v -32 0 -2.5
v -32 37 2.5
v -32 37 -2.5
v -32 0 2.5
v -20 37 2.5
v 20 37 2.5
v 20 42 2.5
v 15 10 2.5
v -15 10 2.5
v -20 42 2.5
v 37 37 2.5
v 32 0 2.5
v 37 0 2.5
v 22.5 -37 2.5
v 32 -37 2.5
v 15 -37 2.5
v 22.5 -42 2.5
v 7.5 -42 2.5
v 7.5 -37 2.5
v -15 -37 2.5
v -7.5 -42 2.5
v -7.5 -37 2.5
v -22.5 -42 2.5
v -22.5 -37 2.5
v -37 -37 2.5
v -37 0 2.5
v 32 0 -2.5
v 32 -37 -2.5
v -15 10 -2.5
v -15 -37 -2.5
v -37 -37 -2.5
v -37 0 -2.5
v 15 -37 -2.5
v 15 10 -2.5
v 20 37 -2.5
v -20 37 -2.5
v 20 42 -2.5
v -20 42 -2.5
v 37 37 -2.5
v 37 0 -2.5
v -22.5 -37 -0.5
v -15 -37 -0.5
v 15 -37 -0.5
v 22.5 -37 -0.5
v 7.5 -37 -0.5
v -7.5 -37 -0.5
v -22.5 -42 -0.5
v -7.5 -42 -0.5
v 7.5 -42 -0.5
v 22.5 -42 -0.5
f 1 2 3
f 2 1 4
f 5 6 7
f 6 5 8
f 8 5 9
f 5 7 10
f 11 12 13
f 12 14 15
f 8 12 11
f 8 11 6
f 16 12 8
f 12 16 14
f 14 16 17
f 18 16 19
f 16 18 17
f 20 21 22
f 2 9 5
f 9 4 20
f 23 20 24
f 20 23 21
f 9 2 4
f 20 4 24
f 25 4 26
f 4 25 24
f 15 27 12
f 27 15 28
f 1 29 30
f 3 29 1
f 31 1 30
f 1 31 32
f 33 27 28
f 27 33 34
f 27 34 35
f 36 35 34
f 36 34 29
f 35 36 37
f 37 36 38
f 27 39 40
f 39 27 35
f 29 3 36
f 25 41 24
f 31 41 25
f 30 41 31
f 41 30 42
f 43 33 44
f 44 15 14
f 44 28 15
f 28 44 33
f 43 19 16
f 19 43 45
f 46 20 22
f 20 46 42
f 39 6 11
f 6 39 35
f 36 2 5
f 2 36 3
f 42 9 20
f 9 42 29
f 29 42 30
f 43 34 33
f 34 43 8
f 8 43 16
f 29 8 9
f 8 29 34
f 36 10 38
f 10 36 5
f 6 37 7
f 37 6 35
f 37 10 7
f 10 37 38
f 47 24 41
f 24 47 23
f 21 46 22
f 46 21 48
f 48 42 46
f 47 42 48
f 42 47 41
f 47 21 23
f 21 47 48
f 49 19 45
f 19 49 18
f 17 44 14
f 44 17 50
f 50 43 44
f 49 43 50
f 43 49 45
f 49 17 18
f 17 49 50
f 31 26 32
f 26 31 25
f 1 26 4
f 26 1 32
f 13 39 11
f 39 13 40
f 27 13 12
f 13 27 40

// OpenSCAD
difference() {
    //base mur
    color("green") cube([64, 74, 5], center=true);
    translate([0, -20, 0]) cube([30, 60, 5], center=true);
}

//encoche haut
translate([0, 39.5, 0]) cube([40, 5, 5], center=true);

//encoche bas
translate([-15, -39.5, 1]) cube([15, 5, 3], center=true);
translate([15, -39.5, 1]) cube([15, 5, 3], center=true);

//coté
translate([-34.5, -18.5, 0]) cube([5, 37, 5], center=true);
translate([34.5, 18.5, 0]) cube([5, 37, 5], center=true);
